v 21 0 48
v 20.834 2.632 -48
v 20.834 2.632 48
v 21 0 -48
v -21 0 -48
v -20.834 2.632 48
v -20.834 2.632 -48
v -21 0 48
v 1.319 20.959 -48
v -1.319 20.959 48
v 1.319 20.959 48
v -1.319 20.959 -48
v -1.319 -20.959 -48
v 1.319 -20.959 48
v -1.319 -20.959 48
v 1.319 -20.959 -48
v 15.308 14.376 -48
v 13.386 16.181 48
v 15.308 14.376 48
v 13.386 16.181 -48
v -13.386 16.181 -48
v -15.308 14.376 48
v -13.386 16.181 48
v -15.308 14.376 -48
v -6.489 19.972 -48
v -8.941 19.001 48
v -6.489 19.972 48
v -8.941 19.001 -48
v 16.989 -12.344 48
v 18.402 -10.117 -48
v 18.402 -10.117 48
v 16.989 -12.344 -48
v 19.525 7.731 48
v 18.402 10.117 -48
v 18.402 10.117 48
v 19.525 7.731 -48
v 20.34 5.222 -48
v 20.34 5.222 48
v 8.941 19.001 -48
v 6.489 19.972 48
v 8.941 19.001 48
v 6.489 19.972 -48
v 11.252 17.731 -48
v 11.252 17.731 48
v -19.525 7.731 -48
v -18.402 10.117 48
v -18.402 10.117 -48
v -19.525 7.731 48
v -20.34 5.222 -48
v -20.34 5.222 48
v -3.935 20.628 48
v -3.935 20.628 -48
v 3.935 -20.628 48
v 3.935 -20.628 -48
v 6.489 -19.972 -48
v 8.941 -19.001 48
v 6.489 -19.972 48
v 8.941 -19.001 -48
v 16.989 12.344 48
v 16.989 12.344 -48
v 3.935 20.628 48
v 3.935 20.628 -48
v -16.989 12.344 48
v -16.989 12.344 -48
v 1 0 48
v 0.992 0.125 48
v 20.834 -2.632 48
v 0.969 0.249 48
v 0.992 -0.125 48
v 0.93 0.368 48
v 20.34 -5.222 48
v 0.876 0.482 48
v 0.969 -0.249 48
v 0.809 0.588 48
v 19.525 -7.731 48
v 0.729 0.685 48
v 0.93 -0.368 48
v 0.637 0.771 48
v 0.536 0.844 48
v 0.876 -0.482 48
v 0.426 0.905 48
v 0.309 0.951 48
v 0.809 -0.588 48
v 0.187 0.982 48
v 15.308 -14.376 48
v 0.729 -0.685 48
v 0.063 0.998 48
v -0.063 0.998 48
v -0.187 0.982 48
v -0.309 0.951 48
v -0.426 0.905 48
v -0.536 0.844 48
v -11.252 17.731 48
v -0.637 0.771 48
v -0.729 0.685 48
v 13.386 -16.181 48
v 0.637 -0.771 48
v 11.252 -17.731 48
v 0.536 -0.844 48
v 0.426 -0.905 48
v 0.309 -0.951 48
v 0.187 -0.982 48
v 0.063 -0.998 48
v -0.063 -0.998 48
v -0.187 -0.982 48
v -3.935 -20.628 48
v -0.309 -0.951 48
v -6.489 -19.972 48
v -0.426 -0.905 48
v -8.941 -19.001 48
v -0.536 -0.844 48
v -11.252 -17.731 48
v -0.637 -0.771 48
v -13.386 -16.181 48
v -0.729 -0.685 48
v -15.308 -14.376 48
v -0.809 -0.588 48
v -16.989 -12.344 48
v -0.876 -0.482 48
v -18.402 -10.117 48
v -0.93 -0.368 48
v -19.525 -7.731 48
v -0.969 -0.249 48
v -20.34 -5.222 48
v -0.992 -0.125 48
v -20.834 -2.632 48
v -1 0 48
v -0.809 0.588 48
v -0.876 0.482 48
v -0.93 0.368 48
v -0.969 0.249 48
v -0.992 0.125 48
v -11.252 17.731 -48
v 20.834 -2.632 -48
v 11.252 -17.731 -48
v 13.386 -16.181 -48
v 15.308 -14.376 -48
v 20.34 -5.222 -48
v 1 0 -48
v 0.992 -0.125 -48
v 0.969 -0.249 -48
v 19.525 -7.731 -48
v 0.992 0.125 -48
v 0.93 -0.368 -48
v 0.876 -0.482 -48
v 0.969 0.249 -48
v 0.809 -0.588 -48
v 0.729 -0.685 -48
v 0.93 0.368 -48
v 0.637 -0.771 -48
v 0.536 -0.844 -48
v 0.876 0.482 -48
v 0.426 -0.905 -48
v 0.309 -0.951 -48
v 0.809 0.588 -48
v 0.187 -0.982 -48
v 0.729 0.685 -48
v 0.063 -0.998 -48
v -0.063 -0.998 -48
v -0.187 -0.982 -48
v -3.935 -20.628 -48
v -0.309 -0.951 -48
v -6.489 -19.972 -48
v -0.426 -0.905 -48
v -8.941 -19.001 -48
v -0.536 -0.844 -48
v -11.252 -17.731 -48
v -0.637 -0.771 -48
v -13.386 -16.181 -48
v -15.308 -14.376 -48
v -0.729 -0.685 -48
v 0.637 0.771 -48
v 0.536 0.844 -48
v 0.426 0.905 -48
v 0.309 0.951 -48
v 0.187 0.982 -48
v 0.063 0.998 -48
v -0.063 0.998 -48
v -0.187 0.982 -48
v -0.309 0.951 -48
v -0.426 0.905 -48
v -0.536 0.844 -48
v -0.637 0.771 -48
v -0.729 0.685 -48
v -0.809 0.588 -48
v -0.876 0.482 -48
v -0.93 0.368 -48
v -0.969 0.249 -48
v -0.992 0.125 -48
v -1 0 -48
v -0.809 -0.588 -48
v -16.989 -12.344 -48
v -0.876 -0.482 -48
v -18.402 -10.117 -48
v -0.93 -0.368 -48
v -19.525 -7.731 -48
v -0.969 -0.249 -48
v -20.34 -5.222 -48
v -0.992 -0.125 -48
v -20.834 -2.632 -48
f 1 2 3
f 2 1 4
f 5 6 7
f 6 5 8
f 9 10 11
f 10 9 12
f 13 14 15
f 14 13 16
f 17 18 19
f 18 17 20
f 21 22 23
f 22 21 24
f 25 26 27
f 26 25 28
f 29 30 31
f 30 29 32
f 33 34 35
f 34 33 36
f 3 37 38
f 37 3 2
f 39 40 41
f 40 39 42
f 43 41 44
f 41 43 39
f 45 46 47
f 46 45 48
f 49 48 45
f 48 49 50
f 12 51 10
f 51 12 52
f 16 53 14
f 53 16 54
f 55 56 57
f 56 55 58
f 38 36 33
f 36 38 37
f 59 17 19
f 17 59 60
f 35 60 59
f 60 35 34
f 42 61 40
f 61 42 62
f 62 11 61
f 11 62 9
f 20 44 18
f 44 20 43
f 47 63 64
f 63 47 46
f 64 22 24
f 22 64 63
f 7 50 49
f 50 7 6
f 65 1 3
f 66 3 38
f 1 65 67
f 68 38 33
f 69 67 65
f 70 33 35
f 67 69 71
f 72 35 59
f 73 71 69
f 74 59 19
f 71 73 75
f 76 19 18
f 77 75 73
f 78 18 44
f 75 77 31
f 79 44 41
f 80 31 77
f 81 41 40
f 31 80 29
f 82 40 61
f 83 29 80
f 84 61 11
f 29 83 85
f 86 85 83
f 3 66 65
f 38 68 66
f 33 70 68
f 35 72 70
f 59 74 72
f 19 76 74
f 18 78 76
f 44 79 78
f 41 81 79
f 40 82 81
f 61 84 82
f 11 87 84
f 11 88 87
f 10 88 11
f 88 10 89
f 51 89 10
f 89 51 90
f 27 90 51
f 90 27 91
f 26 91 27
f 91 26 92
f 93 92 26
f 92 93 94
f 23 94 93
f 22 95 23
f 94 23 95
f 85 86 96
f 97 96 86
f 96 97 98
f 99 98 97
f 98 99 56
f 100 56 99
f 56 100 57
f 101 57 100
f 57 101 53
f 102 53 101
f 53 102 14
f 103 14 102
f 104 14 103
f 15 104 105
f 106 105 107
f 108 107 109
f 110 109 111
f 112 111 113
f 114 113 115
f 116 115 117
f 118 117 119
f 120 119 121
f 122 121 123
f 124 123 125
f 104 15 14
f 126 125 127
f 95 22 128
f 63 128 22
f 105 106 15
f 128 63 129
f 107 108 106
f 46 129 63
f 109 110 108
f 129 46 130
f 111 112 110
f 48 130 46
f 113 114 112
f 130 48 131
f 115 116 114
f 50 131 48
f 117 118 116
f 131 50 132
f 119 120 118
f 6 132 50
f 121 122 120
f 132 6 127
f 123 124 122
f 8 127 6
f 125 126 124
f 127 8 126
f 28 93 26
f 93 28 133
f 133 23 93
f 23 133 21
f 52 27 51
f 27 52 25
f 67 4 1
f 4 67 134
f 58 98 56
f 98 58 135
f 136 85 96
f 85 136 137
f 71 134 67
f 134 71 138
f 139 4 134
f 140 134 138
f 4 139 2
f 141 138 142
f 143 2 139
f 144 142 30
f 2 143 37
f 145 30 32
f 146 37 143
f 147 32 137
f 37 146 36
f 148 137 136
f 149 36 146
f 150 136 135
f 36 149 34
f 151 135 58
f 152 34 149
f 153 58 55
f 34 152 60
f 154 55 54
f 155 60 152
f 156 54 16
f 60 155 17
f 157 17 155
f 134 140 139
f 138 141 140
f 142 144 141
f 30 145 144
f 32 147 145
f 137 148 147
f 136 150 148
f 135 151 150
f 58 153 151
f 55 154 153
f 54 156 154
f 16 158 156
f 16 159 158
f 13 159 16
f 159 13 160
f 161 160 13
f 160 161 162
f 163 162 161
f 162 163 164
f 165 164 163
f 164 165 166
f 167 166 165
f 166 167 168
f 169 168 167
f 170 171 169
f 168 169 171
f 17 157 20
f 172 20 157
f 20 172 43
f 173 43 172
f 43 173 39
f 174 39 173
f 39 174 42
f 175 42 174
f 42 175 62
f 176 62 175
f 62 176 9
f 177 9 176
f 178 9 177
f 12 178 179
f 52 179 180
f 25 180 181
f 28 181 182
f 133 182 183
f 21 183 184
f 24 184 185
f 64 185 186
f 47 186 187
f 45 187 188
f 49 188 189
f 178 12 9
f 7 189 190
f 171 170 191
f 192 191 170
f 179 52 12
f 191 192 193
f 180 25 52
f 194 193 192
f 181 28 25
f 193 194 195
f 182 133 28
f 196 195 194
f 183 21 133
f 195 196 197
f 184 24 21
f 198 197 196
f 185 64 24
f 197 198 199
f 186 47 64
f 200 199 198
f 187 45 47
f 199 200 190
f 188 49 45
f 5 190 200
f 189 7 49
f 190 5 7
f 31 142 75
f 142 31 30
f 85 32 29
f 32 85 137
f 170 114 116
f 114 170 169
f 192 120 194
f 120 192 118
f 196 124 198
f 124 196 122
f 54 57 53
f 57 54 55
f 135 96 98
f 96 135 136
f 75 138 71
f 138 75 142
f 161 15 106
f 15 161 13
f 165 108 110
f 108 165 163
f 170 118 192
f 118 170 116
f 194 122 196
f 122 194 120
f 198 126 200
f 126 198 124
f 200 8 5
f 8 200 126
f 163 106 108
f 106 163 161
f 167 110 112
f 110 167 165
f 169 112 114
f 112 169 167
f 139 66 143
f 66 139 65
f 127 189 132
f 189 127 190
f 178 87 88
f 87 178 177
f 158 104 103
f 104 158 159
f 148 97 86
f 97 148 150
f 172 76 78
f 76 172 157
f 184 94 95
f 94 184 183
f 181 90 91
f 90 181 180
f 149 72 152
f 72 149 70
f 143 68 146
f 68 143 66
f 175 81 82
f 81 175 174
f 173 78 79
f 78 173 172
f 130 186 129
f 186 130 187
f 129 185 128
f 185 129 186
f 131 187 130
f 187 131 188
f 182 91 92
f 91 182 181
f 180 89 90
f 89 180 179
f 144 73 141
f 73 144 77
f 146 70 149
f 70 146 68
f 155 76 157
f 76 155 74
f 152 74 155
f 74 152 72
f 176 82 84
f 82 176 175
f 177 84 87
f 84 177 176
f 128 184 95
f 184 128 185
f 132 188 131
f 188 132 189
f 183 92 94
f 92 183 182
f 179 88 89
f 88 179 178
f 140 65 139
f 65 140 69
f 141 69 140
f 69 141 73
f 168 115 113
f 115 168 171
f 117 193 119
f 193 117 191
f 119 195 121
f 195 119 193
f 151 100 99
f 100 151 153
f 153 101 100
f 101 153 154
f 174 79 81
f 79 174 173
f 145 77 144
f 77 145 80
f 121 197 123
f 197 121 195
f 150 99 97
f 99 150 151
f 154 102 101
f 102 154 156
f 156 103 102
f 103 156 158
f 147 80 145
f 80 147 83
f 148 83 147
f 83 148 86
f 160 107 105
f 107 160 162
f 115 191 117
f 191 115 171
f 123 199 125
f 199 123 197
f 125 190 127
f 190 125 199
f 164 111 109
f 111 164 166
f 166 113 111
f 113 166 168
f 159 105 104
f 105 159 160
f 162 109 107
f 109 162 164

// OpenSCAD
$fn = 50;


difference() {
	union() {
		translate(v = [0, 0, -48.0000000000]) {
			cylinder(h = 96, r = 21.0000000000);
		}
	}
	union() {
		translate(v = [0, 0, -100.0000000000]) {
			cylinder(h = 200, r = 1.0000000000);
		}
	}
}
